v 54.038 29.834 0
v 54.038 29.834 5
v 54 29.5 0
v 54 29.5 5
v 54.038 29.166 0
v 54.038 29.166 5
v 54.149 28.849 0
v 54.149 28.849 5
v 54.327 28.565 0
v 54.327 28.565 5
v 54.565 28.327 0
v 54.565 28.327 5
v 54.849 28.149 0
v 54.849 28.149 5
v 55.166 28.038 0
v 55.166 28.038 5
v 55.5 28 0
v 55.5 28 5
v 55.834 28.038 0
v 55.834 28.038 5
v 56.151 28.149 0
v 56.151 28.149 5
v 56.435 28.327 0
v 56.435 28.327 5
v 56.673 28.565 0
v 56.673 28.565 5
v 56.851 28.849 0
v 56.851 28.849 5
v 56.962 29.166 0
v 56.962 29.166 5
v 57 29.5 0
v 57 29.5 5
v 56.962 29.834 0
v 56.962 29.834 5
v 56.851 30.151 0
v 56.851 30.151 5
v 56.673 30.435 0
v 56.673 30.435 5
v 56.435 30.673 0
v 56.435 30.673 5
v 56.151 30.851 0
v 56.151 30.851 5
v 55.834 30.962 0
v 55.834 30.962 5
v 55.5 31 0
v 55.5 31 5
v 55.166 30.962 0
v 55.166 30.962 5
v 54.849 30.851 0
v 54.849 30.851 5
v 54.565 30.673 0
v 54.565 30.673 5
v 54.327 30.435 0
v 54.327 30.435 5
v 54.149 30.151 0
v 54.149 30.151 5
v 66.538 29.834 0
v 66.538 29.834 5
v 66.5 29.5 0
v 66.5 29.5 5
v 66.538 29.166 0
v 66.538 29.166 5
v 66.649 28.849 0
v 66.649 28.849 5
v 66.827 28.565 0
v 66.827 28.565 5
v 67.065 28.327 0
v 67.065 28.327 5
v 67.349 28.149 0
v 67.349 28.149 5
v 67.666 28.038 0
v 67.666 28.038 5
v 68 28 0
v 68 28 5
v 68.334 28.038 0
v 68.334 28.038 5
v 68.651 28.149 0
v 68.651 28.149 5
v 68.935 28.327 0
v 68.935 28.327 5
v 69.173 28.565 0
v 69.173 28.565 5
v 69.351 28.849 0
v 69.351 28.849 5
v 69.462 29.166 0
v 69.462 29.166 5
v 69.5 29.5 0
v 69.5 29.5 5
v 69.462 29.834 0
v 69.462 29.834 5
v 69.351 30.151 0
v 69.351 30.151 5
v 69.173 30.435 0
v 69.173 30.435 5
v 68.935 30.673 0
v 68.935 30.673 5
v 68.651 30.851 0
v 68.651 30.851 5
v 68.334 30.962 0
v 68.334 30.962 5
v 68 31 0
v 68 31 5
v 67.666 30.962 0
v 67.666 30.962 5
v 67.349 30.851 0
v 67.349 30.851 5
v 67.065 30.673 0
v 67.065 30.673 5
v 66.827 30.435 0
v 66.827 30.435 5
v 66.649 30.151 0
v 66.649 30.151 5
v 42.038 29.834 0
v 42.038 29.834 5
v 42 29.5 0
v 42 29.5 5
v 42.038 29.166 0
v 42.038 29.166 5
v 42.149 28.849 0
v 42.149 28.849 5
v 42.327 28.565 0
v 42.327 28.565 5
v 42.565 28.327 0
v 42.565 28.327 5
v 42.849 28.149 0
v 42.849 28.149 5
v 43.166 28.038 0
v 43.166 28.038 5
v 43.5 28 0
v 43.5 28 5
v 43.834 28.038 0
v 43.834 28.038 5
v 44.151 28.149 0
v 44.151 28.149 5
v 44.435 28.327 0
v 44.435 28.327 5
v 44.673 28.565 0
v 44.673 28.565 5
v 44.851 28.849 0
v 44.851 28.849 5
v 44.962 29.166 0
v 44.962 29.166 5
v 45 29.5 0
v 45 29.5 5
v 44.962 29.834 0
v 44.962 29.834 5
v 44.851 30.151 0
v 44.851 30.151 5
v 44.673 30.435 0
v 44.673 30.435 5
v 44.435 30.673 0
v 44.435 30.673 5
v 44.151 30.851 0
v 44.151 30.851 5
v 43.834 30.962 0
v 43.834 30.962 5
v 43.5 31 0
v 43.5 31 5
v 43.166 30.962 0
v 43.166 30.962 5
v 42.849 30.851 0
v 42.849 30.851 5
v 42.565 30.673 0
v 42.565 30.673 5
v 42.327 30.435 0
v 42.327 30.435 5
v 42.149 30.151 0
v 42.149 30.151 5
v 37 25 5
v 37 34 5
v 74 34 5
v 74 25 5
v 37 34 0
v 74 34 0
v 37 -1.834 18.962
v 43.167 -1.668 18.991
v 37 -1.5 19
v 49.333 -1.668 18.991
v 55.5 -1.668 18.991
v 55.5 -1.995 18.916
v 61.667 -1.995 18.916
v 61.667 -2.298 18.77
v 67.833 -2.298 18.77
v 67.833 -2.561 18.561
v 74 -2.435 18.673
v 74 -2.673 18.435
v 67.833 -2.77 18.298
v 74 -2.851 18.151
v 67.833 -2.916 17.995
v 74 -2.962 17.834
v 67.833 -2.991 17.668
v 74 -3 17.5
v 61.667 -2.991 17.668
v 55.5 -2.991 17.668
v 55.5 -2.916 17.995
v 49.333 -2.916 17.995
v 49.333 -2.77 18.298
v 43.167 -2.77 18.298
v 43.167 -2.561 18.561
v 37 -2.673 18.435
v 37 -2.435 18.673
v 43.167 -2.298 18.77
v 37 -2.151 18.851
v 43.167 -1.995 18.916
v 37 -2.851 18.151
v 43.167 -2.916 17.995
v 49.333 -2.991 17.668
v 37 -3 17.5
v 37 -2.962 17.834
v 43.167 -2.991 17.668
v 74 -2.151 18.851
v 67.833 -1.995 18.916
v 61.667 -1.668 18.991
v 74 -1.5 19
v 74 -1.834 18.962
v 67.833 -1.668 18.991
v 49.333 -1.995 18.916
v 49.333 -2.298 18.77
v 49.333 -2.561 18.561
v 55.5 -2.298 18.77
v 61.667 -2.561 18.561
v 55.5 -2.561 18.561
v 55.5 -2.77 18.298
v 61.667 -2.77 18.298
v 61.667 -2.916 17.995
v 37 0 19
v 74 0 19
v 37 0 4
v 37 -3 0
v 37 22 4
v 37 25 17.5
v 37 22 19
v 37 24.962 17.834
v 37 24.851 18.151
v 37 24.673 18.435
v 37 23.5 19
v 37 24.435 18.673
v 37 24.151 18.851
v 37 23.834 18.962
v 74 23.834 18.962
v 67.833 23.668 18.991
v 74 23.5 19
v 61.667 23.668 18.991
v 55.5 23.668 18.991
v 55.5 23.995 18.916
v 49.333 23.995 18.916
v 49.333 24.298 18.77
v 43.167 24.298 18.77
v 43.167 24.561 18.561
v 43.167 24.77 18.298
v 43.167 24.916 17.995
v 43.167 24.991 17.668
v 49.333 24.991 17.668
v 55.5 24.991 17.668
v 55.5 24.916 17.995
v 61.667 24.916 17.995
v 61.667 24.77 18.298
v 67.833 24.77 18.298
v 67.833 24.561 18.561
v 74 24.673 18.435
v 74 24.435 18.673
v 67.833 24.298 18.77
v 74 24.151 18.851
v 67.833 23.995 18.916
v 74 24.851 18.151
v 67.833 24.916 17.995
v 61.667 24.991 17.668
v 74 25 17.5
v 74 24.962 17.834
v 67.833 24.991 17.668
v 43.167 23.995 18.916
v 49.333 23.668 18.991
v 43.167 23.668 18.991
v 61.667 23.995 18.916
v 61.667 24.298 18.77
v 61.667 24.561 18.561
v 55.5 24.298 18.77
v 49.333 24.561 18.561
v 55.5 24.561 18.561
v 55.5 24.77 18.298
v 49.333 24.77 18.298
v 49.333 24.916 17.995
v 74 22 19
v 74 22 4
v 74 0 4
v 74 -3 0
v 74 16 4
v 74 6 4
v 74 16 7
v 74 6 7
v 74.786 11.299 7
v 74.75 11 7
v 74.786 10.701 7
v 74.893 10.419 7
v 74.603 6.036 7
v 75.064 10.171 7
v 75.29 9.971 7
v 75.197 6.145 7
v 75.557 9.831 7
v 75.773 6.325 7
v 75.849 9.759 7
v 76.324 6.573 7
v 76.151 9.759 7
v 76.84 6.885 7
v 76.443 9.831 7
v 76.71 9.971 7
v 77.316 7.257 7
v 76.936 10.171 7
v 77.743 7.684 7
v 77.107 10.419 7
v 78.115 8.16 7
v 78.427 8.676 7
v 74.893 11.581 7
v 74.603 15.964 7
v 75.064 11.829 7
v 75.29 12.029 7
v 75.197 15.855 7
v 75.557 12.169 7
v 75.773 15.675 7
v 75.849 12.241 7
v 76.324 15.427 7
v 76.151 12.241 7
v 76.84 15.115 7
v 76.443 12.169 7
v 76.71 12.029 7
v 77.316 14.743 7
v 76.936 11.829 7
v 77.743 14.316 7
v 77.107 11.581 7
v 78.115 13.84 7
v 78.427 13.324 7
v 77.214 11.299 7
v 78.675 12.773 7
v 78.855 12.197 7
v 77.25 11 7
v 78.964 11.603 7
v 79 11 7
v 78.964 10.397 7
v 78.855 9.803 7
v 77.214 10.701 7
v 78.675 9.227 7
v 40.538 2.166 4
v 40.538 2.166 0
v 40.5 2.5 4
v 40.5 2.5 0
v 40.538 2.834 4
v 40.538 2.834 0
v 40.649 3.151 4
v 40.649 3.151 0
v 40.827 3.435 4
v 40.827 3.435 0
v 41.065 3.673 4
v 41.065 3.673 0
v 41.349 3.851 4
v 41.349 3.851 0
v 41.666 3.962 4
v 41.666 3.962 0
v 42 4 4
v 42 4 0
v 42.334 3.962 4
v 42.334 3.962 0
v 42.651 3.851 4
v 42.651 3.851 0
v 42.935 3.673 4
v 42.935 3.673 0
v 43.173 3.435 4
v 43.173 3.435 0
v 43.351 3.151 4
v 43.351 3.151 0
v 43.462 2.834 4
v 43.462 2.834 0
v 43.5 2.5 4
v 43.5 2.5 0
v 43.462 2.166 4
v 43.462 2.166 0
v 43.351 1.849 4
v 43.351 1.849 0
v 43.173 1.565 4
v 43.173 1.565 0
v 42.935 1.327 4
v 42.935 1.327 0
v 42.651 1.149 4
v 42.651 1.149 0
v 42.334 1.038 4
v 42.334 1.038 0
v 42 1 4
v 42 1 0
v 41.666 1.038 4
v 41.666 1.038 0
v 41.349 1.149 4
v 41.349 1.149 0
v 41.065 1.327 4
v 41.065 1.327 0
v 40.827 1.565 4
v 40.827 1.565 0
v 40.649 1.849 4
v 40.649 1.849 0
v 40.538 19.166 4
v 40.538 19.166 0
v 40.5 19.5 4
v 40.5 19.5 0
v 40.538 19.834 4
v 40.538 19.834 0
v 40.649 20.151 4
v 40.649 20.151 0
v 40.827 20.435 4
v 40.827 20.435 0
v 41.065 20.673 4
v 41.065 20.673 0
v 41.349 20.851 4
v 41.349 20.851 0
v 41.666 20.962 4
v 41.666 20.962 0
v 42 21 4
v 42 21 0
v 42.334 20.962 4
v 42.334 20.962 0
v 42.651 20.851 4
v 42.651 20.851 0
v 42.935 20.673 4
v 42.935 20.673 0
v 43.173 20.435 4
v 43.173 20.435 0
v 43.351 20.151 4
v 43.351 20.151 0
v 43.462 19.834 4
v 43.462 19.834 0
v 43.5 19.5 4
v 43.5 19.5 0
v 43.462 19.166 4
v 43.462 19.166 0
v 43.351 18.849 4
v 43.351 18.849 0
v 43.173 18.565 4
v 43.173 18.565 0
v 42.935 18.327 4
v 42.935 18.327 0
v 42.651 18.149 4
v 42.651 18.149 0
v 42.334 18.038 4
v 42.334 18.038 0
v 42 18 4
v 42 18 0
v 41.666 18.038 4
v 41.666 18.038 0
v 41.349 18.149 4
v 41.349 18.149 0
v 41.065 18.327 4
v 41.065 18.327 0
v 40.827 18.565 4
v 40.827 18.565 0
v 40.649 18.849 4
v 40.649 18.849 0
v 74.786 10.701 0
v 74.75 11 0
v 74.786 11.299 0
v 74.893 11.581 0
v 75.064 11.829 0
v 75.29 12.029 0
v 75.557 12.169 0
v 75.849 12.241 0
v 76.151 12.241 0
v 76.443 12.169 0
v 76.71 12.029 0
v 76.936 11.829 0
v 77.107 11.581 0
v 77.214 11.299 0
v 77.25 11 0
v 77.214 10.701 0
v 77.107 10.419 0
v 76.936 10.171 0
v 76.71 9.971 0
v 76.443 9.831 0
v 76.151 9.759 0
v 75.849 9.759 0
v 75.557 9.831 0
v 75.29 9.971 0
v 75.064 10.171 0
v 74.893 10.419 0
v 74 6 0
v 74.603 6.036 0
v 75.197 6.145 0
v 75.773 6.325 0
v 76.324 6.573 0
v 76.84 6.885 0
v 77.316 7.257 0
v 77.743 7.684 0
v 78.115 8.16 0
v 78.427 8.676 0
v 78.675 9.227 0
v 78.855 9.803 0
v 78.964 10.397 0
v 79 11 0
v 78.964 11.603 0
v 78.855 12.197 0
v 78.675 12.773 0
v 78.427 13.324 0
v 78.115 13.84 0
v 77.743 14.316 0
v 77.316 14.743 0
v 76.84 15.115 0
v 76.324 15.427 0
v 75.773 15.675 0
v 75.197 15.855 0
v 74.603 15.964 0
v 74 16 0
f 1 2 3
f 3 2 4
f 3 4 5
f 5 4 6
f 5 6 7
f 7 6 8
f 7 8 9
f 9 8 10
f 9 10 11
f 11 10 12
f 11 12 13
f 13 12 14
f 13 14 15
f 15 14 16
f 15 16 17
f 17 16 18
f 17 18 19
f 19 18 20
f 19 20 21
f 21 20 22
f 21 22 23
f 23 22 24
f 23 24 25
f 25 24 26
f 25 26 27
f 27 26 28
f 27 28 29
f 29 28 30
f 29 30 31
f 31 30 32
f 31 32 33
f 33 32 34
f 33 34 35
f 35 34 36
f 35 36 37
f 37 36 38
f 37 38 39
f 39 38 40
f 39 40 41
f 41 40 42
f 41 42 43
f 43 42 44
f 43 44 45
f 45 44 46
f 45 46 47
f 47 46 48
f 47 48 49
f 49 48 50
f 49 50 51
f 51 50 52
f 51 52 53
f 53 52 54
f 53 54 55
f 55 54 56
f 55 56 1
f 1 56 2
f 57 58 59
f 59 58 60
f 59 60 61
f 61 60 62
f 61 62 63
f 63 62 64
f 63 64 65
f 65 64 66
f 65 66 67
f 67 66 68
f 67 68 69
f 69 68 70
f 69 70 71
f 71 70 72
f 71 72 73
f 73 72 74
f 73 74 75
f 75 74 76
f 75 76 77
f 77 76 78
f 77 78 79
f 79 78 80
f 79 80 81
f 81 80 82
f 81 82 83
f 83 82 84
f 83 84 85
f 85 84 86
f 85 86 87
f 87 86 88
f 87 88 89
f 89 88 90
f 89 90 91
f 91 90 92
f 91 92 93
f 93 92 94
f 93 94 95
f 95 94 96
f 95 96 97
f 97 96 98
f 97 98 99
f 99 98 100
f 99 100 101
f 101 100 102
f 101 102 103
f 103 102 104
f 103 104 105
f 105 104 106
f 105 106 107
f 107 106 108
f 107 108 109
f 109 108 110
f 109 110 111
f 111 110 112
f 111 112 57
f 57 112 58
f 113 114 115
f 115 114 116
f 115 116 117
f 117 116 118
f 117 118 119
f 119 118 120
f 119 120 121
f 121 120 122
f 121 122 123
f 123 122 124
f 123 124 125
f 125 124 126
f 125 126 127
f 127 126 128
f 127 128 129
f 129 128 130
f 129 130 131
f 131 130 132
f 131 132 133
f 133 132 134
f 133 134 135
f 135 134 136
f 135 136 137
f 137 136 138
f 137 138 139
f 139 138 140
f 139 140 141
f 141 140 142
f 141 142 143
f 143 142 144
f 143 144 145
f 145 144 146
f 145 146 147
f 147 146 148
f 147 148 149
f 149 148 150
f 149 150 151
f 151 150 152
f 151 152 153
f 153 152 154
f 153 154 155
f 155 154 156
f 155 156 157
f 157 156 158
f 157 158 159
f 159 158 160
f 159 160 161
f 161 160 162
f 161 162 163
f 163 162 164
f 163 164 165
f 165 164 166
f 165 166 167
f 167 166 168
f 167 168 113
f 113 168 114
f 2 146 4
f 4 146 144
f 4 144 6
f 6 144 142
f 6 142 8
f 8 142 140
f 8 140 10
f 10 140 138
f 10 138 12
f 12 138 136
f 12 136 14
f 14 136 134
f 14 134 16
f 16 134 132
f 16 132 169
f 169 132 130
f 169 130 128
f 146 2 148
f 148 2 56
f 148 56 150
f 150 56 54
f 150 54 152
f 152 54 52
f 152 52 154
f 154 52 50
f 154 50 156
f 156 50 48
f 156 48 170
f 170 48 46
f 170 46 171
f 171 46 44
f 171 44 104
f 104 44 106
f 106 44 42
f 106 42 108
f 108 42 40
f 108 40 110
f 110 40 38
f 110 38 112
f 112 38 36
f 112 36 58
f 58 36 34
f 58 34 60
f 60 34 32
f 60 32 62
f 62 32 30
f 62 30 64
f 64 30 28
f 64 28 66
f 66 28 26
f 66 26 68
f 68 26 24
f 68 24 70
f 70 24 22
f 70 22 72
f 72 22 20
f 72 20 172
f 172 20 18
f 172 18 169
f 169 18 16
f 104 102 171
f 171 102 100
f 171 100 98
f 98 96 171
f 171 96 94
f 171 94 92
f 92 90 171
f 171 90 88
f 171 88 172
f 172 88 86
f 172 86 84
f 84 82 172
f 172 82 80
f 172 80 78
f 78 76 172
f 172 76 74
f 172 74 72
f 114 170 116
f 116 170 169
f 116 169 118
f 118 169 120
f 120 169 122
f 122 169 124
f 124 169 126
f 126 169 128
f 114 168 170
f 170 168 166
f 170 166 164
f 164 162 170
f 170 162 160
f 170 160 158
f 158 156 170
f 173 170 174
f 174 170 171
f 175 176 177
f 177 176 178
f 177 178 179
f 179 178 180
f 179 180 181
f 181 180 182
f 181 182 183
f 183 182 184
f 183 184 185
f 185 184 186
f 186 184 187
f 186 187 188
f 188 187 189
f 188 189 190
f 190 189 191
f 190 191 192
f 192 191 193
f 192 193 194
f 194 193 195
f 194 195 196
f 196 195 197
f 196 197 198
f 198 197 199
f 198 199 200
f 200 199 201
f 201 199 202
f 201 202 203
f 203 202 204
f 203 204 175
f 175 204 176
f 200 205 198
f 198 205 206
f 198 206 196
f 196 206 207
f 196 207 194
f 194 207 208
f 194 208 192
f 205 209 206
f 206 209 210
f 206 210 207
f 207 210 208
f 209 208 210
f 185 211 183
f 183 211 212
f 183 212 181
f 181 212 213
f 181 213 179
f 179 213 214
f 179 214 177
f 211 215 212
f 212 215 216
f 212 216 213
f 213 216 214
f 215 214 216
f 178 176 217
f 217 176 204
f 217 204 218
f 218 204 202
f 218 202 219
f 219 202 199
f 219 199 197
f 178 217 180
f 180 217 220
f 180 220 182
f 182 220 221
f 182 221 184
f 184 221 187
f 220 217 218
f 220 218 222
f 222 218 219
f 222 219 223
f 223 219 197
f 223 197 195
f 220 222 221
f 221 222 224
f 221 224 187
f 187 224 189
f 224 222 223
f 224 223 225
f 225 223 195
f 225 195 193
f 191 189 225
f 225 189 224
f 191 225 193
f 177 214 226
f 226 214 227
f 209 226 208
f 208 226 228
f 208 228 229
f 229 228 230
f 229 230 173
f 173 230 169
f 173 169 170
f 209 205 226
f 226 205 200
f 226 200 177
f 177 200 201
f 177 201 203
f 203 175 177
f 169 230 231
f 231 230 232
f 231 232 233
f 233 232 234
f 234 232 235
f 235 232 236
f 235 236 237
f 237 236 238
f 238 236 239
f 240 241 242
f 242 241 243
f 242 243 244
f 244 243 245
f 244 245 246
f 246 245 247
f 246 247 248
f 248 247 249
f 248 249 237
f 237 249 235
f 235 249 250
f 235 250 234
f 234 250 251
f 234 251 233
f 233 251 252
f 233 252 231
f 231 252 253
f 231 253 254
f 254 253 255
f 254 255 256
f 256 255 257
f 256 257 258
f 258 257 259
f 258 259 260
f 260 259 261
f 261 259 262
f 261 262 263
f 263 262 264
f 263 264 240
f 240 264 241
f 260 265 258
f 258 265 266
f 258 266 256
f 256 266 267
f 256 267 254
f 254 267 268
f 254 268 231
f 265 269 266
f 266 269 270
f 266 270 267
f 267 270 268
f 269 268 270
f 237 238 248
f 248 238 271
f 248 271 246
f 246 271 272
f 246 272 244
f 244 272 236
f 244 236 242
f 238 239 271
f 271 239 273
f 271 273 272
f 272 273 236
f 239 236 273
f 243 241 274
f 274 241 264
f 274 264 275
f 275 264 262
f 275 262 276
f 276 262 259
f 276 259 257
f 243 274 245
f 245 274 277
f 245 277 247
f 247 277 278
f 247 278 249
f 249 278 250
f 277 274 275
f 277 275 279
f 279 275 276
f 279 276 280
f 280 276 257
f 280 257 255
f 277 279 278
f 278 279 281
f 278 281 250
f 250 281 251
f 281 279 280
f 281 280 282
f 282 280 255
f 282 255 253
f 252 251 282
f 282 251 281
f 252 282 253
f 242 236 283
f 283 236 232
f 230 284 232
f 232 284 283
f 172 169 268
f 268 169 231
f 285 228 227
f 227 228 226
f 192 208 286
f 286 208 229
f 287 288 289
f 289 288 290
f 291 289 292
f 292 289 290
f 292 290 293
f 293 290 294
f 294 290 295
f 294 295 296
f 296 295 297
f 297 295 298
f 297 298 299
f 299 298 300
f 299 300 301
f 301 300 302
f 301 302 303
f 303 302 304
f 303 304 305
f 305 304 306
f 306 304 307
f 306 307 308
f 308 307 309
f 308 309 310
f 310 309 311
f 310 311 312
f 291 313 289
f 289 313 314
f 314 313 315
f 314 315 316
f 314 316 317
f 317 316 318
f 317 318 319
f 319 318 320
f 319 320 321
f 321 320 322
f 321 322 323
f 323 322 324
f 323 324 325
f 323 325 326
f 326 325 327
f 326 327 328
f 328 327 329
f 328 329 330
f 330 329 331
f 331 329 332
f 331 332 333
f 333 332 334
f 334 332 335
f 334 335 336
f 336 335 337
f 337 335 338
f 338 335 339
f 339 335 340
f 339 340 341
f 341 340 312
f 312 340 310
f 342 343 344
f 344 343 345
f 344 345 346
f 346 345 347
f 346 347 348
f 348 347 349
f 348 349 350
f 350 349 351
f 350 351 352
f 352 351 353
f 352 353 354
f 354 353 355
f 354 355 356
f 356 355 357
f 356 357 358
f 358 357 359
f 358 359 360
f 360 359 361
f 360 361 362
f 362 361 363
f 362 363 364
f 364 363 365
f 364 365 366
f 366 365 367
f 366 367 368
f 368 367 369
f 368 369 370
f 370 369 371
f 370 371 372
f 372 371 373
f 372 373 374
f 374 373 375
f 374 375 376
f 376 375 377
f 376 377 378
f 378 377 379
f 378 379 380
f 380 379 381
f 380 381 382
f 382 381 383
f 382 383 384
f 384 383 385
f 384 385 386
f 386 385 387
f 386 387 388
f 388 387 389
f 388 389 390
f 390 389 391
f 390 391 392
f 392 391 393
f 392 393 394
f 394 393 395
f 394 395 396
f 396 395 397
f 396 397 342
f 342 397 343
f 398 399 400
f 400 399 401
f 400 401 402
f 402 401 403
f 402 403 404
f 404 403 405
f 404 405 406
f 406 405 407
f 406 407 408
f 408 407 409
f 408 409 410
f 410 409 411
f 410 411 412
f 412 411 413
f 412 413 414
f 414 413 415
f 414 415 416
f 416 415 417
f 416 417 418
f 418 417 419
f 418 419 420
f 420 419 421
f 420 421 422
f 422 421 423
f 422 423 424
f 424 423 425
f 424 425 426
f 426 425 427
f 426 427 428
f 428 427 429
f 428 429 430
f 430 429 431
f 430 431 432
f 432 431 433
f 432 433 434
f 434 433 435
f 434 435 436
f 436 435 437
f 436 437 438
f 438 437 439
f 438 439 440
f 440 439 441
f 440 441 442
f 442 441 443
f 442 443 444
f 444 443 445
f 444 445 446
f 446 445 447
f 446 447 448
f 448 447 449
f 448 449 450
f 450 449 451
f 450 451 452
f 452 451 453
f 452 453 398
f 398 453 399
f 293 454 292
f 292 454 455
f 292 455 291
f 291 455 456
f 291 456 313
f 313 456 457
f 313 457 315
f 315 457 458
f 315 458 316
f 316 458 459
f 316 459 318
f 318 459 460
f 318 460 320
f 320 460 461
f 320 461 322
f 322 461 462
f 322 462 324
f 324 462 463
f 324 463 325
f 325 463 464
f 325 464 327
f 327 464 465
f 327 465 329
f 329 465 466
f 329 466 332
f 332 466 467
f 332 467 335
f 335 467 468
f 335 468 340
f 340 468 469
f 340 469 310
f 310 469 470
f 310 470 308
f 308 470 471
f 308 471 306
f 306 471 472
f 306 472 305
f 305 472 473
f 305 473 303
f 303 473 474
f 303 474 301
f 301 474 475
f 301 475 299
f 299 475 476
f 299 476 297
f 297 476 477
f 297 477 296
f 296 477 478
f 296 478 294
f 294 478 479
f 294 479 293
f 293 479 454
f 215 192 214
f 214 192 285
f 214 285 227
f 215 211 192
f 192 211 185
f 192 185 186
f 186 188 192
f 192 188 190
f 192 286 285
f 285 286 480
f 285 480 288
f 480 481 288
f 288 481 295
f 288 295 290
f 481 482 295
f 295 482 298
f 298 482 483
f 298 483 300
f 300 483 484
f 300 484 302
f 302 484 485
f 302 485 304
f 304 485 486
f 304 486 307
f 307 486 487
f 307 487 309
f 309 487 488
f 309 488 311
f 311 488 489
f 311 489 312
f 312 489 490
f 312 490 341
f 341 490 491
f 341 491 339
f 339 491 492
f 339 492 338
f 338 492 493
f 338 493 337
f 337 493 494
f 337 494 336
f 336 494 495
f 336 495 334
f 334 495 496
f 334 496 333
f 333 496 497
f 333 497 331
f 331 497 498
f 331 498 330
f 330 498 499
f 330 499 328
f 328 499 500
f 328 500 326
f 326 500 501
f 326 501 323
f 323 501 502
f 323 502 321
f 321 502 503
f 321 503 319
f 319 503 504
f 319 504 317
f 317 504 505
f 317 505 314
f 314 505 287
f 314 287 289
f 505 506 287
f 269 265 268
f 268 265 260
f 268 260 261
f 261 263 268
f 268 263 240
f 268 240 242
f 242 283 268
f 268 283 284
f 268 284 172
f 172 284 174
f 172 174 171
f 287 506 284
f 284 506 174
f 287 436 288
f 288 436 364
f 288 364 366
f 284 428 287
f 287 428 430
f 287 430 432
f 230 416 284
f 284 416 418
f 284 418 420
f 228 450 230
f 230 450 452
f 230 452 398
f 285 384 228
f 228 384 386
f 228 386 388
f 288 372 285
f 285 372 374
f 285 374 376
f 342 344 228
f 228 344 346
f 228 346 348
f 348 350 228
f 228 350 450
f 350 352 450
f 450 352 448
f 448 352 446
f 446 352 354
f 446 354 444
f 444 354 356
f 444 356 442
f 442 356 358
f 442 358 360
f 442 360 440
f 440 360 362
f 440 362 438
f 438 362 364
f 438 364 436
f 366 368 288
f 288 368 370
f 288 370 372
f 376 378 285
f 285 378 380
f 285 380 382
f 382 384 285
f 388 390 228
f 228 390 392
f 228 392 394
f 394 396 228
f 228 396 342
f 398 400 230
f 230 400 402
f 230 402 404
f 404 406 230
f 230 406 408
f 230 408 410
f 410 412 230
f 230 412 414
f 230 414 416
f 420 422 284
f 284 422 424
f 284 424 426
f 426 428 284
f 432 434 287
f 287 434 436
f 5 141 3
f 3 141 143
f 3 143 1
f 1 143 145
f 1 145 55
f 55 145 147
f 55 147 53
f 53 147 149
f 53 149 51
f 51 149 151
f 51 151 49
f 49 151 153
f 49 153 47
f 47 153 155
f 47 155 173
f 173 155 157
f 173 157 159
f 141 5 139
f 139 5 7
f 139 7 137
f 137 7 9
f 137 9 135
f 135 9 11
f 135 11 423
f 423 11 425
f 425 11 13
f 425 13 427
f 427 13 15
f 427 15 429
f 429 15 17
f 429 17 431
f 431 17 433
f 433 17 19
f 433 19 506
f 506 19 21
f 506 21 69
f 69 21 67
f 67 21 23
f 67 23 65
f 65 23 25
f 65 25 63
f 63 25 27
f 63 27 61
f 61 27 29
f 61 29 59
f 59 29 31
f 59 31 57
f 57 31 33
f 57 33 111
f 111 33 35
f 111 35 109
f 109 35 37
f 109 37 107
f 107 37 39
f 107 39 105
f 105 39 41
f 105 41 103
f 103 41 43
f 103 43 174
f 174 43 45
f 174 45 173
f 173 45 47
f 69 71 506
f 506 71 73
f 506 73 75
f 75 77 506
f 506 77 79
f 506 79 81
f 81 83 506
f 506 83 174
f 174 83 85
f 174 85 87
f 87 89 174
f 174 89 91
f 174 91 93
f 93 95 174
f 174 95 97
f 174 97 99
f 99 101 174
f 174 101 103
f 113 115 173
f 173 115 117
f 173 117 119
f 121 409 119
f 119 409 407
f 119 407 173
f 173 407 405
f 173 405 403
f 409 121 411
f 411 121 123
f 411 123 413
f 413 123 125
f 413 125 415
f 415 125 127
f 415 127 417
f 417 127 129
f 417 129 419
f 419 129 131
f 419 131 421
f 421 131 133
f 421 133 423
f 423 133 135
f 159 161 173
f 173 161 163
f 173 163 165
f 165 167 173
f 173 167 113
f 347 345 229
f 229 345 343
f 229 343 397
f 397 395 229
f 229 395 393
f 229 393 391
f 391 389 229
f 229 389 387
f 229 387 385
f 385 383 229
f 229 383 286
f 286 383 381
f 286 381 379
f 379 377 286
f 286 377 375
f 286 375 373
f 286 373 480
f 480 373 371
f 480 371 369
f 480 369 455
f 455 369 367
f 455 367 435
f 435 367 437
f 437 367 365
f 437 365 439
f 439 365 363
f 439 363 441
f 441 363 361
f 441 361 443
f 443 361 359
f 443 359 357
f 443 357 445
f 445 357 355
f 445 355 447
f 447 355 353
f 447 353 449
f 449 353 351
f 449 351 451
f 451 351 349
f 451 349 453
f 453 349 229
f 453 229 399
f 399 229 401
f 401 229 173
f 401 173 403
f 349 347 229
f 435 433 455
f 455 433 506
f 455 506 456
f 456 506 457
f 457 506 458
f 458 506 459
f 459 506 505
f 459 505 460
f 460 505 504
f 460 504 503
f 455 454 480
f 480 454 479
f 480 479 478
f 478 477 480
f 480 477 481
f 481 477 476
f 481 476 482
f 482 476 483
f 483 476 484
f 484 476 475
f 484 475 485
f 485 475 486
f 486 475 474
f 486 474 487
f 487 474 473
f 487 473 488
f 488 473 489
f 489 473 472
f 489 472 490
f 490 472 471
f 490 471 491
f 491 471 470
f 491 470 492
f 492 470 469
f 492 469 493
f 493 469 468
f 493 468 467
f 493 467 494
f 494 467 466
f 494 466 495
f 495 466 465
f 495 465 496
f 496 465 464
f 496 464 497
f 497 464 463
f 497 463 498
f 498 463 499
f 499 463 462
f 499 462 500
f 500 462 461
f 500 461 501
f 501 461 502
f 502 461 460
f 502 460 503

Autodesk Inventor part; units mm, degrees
ref_plane "XZ Plane" through (0, 0, 0) normal (0, 1, 0) x (-1, 0, 0)
ref_plane "XY Plane" through (0, 0, 0) normal (0, 0, 1) x (1, 0, 0)
sketch "Szkic1" plane through (0, 0, 0) normal (0, 0, 1) x (1, 0, 0)
  line L0 (0, 0) -> (37, 0)
  line L1 (37, 0) -> (37, 22)
  line L2 (37, 22) -> (0, 22)
  line L3 (0, 11) -> (-5, 11) construction
  circle A0 centre (-2, 11) radius 1.25
  arc A1 (0, 16) -> (0, 6) centre (0, 11) ccw
  line L4 (37, 22) -> (32, 22) construction
  line L5 (37, 22) -> (37, 19.5) construction
  circle A2 centre (32, 19.5) radius 1.5
  line L6 (37, 0) -> (32, 0) construction
  line L7 (32, 0) -> (32, 2.5) construction
  circle A3 centre (32, 2.5) radius 1.5
  line L8 (0, 22) -> (37, 22)
  line L9 (37, 22) -> (37, 25)
  line L10 (37, 25) -> (0, 25)
  line L11 (0, 25) -> (0, 22)
  line L12 (0, 0) -> (37, 0)
  line L13 (37, 0) -> (37, -3)
  line L14 (37, -3) -> (0, -3)
  line L15 (0, -3) -> (0, 0)
  line L16 (0, 22) -> (0, 16)
  line L17 (0, 6) -> (0, 0)
  dimension "d0" = 37
  dimension "d1" = 22
  dimension "d2" = 5
  dimension "d3" = 2.5
  dimension "d7" = 3
  dimension "d10" = 3
  dimension "d11" = 37
  dimension "d12" = 3
  dimension "d13" = 37
  dimension "d14" = 3
extrude "Wyciągnięcie proste1" add sketch "Szkic1" along normal blind 4 contours L17 A1 L16 L2 L1 L0
sketch "Szkic2" plane through (0, 0, 4) normal (0, 0, 1) x (1, 0, 0)
  circle A0 centre (-2, 11) radius 1.25 projected
  arc A1 (0, 16) -> (0, 6) centre (0, 11) ccw projected
  line L0 (0, 6) -> (0, 0) projected
  line L1 (0, 16) -> (0, 6)
extrude "Wyciągnięcie proste2" add sketch "Szkic2" along normal blind 3
extrude "Wyciągnięcie proste3" add sketch "Szkic1" along normal blind 19 contours L0 L13 L14 L15
extrude "Wyciągnięcie proste4" add sketch "Szkic1" along normal blind 19 contours L2 L11 L10 L9
fillet "Zaokrąglenie2" radius 1.5 1 edges at (18.5, 25, 19)
fillet "Zaokrąglenie3" radius 1.5 1 edges at (18.5, -3, 19)
sketch "Szkic3" plane through (0, 25, 0) normal (0, 1, 0) x (1, 0, 0)
  line L0 (37, -17.5) -> (0, -17.5) projected
  line L1 (37, 0) -> (37, -17.5) projected
  line L2 (37, 0) -> (0, 0) projected
  line L3 (0, 0) -> (0, -17.5) projected
  line L4 (-5, 0) -> (0, 0) projected
  line L5 (0, 0) -> (37, 0)
  line L6 (37, 0) -> (37, -5)
  line L7 (37, -5) -> (0, -5)
  line L8 (0, -5) -> (0, 0)
  dimension "d26" = 37
  dimension "d27" = 5
extrude "Wyciągnięcie proste5" add sketch "Szkic3" along normal blind 9 contours L7 L3 L2 L1
sketch "Szkic4" plane through (0, 25, 5) normal (0, 0, 1) x (1, 0, 0)
  line L0 (0, 9) -> (0, 0)
  line L1 (0, 0) -> (0, 4.5)
  line L2 (37, 0) -> (37, 9) projected
  circle A0 centre (6, 4.5) radius 1.5
  circle A1 centre (18.5, 4.5) radius 1.5
  circle A2 centre (30.5, 4.5) radius 1.5
  point P0 (0, -25)
  dimension "d30" = 3
  dimension "d31" = 3
  dimension "d32" = 3
extrude "Wyciągnięcie proste6" cut sketch "Szkic4" against normal blind 9
mirror "Odbij1" about plane through (37, 0, 0) normal (1, 0, 0)
ref_plane "Płaszczyzna konstrukcyjna1" through (37, 0, 0) normal (1, 0, 0) x (0, 1, 0)
split "Podział1" plane through (37, 0, 0) removes the side toward (-1, 0, 0)
sketch "Szkic5" plane through (37, 25, 5) normal (0, 0, 1) x (1, 0, 0)
  point P0 (-37, -25)
sketch "Szkic6" plane through (37, 34, 0) normal (0, 1, 0) x (1, 0, 0)
  point P0 (-37, 0)
sketch "Szkic7" plane through (74, -3, 0) normal (0, 0, -1) x (-1, 0, 0)
  point P0 (74, 3)
sketch "Szkic8" plane through (37, 34, 0) normal (0, 1, 0) x (1, 0, 0)
  point P0 (-37, 0)
sketch "Szkic9" plane through (37, 25, 5) normal (0, 0, 1) x (1, 0, 0)
  point P0 (-37, -25)
properties part number "motor_grip_L"
